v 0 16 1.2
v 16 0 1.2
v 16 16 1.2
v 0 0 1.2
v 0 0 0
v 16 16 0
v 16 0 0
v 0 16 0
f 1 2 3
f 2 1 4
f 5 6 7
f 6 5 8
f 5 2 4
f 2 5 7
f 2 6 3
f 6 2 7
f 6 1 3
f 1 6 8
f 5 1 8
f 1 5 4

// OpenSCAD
/* Warning, this is a very basic generator with a lot of approximation 
input data : [TFBGA, DYB, 16x16x1.2mm, 361, , A, C04-21149A]
generated by com.zoubworld.electronics.cad.model3d.Basic
Date : Sun Feb 15 10:50:49 CET 2026
*/

//body
color("black")
translate([0,0,0])
cube([16.0,16.0,1.2], center=false);
